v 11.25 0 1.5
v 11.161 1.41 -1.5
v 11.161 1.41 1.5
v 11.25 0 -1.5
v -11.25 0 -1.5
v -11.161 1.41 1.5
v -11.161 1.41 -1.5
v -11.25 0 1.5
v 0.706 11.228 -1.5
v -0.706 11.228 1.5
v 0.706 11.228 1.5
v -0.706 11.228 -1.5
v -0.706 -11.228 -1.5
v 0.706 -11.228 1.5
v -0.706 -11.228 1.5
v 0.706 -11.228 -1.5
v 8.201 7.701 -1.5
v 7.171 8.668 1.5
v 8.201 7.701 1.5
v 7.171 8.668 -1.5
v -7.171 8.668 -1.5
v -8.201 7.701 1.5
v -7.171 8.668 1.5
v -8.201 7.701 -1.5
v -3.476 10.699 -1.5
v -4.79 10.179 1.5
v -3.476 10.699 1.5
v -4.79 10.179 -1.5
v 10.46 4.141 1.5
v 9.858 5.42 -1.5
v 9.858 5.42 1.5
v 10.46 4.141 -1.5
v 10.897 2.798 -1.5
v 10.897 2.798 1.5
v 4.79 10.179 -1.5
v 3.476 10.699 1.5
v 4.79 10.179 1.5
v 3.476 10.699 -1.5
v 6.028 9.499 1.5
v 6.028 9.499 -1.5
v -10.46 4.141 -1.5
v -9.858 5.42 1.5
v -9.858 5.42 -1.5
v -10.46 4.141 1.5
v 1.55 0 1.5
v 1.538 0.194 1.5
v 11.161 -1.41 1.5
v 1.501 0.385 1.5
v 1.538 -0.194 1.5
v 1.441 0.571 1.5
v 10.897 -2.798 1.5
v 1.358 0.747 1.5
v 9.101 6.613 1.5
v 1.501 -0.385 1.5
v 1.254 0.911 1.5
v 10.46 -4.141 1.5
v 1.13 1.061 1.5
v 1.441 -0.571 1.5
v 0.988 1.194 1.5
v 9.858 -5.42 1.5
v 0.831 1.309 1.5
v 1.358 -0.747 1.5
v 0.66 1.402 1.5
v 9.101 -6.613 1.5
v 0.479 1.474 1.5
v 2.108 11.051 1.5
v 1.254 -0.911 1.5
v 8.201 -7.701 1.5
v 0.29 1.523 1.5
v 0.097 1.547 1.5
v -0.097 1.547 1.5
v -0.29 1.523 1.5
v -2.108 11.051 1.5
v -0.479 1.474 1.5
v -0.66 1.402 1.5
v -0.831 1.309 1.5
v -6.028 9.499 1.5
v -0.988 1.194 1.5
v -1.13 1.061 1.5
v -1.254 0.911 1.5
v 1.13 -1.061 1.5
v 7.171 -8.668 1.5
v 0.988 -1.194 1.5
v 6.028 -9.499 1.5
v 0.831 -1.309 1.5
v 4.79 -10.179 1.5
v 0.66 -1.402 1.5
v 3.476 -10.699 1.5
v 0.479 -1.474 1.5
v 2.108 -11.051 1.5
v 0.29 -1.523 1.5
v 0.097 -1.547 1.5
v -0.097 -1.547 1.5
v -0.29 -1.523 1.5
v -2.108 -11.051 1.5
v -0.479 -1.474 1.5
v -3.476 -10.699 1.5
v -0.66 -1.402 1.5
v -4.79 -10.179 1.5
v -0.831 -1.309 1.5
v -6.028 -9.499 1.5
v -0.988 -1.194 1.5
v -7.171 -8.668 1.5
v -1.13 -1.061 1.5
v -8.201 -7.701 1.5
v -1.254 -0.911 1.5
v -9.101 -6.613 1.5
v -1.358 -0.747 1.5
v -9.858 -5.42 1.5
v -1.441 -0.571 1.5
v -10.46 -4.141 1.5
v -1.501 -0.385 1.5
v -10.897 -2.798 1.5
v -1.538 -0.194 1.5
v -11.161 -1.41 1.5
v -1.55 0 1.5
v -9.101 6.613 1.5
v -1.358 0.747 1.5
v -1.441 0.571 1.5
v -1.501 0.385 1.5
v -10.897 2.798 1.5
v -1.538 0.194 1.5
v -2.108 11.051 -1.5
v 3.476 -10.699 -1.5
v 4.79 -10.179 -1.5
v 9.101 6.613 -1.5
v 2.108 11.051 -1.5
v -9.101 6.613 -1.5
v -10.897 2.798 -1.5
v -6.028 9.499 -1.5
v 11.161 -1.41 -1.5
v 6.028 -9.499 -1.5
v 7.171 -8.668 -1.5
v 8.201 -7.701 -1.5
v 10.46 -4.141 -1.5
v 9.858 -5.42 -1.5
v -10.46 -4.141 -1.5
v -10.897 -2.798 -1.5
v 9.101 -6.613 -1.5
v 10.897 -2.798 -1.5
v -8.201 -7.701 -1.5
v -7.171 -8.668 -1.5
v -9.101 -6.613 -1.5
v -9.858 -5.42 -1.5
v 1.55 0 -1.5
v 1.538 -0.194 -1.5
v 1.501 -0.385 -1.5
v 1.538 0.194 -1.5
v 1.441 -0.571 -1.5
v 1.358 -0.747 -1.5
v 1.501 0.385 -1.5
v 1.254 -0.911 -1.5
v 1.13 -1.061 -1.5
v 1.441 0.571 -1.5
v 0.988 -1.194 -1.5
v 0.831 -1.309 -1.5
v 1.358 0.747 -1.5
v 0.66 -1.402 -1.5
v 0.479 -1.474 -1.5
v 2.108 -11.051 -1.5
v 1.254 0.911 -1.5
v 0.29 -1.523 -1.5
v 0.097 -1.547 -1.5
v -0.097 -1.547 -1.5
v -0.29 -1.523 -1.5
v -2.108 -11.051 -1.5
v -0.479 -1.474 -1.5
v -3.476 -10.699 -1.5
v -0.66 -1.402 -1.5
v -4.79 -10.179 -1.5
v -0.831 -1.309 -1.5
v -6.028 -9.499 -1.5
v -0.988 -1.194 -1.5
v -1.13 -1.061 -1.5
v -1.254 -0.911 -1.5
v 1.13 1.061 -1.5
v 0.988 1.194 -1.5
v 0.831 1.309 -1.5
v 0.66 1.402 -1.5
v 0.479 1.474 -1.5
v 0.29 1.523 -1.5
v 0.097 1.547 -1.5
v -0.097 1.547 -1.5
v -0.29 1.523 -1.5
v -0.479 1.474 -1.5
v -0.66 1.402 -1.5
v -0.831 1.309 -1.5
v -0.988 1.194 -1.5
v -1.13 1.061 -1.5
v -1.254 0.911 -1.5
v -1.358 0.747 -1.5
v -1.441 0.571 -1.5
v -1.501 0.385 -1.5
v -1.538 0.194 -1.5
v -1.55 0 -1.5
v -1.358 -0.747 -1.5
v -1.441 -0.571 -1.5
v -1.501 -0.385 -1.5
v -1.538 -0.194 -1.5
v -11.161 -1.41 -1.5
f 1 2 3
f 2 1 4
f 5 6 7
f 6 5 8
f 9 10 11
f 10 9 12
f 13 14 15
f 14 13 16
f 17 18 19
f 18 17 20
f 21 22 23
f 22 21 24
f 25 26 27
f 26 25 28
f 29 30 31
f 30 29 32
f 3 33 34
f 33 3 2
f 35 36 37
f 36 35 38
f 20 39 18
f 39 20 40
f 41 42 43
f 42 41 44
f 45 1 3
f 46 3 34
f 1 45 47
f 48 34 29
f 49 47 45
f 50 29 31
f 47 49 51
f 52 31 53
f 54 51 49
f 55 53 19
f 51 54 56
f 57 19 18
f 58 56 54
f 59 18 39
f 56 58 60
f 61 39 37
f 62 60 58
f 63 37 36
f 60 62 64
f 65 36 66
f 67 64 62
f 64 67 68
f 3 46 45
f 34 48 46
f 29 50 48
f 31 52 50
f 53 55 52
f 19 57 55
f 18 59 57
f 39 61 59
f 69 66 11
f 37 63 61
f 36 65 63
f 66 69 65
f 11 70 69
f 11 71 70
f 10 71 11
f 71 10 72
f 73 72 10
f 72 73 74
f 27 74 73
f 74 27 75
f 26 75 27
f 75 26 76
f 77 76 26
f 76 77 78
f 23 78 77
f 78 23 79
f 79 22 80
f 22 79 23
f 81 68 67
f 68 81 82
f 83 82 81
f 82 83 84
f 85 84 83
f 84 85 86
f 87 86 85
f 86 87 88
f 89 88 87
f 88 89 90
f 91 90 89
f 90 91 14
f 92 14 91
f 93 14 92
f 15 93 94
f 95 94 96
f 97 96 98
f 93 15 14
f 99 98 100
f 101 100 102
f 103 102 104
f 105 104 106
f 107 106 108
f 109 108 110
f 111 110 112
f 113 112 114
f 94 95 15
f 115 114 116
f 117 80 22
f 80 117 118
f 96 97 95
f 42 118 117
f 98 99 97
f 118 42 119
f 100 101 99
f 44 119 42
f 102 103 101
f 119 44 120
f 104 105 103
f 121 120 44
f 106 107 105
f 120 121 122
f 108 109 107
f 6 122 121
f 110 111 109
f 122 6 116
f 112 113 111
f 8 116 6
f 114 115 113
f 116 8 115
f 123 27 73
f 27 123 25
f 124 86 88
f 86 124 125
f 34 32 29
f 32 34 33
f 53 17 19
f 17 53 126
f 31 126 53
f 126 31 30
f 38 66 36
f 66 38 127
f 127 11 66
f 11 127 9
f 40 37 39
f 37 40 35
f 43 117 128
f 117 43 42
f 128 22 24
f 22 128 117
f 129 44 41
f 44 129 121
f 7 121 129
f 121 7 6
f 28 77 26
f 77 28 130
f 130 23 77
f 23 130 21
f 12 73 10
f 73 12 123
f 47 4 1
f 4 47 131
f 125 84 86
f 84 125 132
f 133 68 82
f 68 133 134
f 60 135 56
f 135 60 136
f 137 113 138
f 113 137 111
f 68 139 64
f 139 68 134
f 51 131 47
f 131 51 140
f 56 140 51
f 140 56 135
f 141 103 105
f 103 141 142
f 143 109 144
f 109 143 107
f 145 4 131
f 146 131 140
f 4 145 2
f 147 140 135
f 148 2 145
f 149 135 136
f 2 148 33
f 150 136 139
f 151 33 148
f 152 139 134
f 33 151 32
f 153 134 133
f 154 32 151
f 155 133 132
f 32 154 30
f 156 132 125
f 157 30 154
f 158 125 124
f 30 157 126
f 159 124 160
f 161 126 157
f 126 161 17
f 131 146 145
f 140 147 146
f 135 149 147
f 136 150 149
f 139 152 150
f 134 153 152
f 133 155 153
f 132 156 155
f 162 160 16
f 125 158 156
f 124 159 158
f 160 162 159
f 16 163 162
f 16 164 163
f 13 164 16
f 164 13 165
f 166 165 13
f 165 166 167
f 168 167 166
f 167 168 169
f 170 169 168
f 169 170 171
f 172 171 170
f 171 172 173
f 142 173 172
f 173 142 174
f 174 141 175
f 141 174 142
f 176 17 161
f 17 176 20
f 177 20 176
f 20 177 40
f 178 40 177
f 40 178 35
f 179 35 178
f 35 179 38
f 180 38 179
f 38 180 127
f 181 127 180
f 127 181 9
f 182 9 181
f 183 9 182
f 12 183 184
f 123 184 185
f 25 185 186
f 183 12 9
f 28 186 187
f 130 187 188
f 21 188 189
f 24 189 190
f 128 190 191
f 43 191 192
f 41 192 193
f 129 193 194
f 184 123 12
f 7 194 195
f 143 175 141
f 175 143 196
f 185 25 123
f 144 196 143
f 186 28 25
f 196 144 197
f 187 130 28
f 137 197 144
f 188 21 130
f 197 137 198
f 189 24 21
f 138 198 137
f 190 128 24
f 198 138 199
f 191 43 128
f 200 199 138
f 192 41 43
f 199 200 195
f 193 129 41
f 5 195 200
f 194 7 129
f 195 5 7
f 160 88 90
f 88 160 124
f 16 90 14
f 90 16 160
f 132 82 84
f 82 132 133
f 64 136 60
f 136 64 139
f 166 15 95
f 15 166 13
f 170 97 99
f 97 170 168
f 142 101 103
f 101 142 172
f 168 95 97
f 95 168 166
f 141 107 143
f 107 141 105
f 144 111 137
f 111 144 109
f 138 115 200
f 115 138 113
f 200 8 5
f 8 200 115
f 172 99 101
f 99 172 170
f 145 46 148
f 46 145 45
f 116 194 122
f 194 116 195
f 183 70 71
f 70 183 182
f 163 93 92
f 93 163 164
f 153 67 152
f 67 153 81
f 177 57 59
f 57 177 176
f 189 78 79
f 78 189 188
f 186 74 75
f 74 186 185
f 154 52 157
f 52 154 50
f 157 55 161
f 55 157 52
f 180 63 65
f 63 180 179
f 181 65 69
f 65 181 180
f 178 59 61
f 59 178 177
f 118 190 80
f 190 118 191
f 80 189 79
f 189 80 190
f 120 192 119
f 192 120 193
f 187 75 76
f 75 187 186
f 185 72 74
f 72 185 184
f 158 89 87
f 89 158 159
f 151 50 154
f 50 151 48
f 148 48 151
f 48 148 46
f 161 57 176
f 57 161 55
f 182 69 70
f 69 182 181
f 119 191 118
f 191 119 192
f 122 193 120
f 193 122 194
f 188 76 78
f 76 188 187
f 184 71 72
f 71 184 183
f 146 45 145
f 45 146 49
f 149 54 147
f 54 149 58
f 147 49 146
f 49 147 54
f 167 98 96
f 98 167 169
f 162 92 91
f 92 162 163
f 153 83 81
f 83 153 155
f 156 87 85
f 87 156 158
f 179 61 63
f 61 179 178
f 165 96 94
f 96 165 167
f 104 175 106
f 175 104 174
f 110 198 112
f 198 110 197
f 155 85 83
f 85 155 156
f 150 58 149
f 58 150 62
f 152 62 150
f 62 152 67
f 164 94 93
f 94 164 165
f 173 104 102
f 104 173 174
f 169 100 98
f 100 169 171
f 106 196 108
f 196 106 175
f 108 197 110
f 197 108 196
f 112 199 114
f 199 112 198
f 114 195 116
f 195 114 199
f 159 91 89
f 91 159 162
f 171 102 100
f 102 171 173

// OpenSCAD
$fn = 50;


difference() {
	union() {
		translate(v = [0, 0, -1.5000000000]) {
			cylinder(h = 3, r = 11.2500000000);
		}
	}
	union() {
		translate(v = [0, 0, -100.0000000000]) {
			cylinder(h = 200, r = 1.5500000000);
		}
	}
}
